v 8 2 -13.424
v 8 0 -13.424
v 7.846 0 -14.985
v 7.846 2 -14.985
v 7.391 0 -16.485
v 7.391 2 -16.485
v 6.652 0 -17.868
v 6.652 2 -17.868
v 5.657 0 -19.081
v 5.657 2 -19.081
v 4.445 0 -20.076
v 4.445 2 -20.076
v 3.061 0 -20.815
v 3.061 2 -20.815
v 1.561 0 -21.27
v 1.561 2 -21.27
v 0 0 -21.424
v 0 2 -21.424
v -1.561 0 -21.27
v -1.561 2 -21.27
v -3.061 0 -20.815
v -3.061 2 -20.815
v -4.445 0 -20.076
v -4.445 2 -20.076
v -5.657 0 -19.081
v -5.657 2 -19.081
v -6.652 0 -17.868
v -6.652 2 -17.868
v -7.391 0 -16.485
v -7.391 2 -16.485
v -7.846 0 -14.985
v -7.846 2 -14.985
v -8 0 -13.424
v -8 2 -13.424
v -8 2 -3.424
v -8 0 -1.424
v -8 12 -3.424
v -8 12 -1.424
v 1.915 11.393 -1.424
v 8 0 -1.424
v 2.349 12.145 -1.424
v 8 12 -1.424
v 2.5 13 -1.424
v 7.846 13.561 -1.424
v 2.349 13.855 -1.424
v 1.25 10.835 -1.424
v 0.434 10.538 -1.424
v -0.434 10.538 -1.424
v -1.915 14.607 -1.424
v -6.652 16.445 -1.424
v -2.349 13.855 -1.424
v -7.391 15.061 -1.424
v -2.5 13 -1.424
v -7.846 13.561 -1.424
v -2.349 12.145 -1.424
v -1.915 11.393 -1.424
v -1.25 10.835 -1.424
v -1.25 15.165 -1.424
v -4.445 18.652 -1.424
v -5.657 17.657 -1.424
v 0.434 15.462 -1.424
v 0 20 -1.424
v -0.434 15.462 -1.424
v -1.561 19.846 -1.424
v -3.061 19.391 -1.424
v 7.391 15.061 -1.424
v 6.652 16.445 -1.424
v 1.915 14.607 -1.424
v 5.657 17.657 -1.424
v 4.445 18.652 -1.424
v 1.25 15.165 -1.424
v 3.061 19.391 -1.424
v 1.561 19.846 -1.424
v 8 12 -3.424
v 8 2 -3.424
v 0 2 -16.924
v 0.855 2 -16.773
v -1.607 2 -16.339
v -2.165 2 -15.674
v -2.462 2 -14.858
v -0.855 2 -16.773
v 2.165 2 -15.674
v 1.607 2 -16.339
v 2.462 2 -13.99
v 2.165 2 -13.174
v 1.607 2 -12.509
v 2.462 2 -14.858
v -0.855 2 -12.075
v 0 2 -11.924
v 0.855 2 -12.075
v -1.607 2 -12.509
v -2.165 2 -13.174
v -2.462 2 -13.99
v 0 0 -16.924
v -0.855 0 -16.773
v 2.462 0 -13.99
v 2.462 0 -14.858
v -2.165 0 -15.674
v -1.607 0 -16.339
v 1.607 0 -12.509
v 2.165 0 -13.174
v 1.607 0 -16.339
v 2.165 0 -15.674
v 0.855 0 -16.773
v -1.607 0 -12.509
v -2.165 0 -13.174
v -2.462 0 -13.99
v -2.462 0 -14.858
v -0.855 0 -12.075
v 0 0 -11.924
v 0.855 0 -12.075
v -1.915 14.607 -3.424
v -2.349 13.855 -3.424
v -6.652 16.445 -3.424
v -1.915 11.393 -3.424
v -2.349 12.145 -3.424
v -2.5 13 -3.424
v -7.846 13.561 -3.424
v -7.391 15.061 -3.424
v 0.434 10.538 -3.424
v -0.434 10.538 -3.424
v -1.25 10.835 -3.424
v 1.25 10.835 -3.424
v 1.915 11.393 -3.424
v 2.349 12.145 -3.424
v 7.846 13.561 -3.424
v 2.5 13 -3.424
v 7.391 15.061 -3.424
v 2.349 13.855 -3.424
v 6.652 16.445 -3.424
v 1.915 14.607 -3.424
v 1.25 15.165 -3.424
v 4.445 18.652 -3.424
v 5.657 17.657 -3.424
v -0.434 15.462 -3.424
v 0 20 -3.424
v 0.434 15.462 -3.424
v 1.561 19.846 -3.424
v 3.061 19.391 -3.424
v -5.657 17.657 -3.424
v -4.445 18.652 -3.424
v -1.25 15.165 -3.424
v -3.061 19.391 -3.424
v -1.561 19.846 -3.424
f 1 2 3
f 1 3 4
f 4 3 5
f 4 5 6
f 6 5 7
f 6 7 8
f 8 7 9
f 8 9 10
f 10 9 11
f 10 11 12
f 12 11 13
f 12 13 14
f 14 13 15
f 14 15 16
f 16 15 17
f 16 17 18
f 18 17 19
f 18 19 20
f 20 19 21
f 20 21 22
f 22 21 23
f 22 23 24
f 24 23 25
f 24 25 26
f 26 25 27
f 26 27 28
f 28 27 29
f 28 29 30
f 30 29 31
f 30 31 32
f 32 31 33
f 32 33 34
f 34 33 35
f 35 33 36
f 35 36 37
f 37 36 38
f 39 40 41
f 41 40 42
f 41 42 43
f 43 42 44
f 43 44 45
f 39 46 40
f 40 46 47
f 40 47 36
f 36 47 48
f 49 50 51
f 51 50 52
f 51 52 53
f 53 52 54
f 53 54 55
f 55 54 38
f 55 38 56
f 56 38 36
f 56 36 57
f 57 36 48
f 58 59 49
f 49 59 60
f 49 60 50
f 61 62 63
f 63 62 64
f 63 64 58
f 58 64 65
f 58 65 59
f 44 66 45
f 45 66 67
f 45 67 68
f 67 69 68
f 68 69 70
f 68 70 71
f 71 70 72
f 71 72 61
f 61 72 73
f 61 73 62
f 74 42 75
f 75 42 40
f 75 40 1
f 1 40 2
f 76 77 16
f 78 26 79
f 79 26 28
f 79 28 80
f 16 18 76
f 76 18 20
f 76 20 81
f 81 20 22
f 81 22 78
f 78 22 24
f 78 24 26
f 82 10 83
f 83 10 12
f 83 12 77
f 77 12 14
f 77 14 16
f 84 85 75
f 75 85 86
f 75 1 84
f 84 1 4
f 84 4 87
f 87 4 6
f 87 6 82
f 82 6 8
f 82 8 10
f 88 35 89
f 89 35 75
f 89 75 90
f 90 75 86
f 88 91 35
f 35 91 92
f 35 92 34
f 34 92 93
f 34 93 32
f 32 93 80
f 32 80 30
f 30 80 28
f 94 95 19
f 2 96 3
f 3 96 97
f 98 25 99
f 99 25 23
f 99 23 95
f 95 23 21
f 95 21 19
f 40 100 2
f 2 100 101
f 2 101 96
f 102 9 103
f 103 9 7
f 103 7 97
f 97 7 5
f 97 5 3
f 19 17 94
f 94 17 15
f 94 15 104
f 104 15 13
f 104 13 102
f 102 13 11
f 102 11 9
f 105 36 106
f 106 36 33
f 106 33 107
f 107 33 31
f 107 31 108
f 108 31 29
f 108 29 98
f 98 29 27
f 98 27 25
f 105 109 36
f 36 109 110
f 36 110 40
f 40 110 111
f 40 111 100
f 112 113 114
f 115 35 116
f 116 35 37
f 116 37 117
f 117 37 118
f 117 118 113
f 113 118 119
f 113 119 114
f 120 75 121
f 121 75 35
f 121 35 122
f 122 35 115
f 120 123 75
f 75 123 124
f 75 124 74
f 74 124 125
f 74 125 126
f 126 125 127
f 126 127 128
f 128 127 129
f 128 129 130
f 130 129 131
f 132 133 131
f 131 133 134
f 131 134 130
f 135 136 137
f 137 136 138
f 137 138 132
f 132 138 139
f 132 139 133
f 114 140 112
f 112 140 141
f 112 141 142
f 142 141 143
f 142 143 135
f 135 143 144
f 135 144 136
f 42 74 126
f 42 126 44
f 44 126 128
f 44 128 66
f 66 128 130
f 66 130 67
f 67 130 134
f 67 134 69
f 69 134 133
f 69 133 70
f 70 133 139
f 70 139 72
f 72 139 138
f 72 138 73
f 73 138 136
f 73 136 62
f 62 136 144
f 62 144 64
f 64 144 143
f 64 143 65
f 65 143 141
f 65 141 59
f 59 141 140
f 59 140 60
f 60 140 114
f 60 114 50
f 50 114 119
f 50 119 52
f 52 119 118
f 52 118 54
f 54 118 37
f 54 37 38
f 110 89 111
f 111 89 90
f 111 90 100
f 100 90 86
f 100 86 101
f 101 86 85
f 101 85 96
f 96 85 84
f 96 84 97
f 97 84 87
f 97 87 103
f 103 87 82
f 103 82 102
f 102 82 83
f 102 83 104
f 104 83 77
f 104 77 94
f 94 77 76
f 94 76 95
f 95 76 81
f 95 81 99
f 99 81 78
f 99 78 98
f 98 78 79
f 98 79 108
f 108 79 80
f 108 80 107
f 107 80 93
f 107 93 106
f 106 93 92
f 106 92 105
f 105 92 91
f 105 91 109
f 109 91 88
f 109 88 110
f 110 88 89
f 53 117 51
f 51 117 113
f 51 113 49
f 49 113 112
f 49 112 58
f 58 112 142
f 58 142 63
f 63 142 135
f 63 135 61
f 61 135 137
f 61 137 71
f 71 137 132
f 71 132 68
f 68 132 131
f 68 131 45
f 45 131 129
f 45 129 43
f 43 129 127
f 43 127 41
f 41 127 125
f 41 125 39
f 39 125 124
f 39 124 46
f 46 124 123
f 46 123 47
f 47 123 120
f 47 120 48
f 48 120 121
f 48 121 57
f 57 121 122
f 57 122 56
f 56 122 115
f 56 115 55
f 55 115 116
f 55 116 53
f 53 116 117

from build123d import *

# Parameters (mm, degrees)
EXTRUDE_1_DEPTH     = 2
SKETCH_2_W          = 16
SKETCH_2_H          = 2
EXTRUDE_2_DEPTH     = 10
EXTRUDE_3_DEPTH     = 2
SKETCH_4_R          = 2.5
CUT_EXTRUDE_1_DEPTH = 3
SKETCH_5_R          = 2.5
CUT_EXTRUDE_2_DEPTH = 3


with BuildPart() as part:
    # 草图1 → 凸台-拉伸1 (new body)
    with BuildSketch(Plane(origin=(0, 0, 0), x_dir=(1, 0, 0), z_dir=(0, 1, 0))):
        with BuildLine():
            Line((8, 1.423853667), (-8, 1.423853667))
            Line((-8, 1.423853667), (-8, 13.423853667))
            ThreePointArc((-8, 13.423853667), (0, 21.423853667), (8, 13.423853667))
            Line((8, 13.423853667), (8, 1.423853667))
        make_face()
    extrude(amount=EXTRUDE_1_DEPTH)

    # 草图2 → 凸台-拉伸2 (add)
    with BuildSketch(Plane(origin=(0, 2, 0), x_dir=(1, 0, 0), z_dir=(0, 1, 0))):
        with Locations((0, 2.423853667)):
            Rectangle(SKETCH_2_W, SKETCH_2_H)
    extrude(amount=EXTRUDE_2_DEPTH)

    # 草图3 → 凸台-拉伸3 (add)
    with BuildSketch(Plane(origin=(0, 0, -3.423853667), x_dir=(-1, 0, 0), z_dir=(0, 0, -1))):
        with BuildLine():
            Line((-8, 12), (8, 12))
            ThreePointArc((8, 12), (0, 20), (-8, 12))
        make_face()
    extrude(amount=-EXTRUDE_3_DEPTH)

    # 草图4 → 切除-拉伸1 (cut, through all)
    with BuildSketch(Plane(origin=(0, 2, 0), x_dir=(1, 0, 0), z_dir=(0, 1, 0))):
        with Locations((0, 14.423853667)):
            Circle(SKETCH_4_R)
    extrude(amount=-CUT_EXTRUDE_1_DEPTH, mode=Mode.SUBTRACT)

    # 草图5 → 切除-拉伸2 (cut, through all)
    with BuildSketch(Plane(origin=(0, 0, -3.423853667), x_dir=(-1, 0, 0), z_dir=(0, 0, -1))):
        with Locations((0, 13)):
            Circle(SKETCH_5_R)
    extrude(amount=-CUT_EXTRUDE_2_DEPTH, mode=Mode.SUBTRACT)


solid = part.part
